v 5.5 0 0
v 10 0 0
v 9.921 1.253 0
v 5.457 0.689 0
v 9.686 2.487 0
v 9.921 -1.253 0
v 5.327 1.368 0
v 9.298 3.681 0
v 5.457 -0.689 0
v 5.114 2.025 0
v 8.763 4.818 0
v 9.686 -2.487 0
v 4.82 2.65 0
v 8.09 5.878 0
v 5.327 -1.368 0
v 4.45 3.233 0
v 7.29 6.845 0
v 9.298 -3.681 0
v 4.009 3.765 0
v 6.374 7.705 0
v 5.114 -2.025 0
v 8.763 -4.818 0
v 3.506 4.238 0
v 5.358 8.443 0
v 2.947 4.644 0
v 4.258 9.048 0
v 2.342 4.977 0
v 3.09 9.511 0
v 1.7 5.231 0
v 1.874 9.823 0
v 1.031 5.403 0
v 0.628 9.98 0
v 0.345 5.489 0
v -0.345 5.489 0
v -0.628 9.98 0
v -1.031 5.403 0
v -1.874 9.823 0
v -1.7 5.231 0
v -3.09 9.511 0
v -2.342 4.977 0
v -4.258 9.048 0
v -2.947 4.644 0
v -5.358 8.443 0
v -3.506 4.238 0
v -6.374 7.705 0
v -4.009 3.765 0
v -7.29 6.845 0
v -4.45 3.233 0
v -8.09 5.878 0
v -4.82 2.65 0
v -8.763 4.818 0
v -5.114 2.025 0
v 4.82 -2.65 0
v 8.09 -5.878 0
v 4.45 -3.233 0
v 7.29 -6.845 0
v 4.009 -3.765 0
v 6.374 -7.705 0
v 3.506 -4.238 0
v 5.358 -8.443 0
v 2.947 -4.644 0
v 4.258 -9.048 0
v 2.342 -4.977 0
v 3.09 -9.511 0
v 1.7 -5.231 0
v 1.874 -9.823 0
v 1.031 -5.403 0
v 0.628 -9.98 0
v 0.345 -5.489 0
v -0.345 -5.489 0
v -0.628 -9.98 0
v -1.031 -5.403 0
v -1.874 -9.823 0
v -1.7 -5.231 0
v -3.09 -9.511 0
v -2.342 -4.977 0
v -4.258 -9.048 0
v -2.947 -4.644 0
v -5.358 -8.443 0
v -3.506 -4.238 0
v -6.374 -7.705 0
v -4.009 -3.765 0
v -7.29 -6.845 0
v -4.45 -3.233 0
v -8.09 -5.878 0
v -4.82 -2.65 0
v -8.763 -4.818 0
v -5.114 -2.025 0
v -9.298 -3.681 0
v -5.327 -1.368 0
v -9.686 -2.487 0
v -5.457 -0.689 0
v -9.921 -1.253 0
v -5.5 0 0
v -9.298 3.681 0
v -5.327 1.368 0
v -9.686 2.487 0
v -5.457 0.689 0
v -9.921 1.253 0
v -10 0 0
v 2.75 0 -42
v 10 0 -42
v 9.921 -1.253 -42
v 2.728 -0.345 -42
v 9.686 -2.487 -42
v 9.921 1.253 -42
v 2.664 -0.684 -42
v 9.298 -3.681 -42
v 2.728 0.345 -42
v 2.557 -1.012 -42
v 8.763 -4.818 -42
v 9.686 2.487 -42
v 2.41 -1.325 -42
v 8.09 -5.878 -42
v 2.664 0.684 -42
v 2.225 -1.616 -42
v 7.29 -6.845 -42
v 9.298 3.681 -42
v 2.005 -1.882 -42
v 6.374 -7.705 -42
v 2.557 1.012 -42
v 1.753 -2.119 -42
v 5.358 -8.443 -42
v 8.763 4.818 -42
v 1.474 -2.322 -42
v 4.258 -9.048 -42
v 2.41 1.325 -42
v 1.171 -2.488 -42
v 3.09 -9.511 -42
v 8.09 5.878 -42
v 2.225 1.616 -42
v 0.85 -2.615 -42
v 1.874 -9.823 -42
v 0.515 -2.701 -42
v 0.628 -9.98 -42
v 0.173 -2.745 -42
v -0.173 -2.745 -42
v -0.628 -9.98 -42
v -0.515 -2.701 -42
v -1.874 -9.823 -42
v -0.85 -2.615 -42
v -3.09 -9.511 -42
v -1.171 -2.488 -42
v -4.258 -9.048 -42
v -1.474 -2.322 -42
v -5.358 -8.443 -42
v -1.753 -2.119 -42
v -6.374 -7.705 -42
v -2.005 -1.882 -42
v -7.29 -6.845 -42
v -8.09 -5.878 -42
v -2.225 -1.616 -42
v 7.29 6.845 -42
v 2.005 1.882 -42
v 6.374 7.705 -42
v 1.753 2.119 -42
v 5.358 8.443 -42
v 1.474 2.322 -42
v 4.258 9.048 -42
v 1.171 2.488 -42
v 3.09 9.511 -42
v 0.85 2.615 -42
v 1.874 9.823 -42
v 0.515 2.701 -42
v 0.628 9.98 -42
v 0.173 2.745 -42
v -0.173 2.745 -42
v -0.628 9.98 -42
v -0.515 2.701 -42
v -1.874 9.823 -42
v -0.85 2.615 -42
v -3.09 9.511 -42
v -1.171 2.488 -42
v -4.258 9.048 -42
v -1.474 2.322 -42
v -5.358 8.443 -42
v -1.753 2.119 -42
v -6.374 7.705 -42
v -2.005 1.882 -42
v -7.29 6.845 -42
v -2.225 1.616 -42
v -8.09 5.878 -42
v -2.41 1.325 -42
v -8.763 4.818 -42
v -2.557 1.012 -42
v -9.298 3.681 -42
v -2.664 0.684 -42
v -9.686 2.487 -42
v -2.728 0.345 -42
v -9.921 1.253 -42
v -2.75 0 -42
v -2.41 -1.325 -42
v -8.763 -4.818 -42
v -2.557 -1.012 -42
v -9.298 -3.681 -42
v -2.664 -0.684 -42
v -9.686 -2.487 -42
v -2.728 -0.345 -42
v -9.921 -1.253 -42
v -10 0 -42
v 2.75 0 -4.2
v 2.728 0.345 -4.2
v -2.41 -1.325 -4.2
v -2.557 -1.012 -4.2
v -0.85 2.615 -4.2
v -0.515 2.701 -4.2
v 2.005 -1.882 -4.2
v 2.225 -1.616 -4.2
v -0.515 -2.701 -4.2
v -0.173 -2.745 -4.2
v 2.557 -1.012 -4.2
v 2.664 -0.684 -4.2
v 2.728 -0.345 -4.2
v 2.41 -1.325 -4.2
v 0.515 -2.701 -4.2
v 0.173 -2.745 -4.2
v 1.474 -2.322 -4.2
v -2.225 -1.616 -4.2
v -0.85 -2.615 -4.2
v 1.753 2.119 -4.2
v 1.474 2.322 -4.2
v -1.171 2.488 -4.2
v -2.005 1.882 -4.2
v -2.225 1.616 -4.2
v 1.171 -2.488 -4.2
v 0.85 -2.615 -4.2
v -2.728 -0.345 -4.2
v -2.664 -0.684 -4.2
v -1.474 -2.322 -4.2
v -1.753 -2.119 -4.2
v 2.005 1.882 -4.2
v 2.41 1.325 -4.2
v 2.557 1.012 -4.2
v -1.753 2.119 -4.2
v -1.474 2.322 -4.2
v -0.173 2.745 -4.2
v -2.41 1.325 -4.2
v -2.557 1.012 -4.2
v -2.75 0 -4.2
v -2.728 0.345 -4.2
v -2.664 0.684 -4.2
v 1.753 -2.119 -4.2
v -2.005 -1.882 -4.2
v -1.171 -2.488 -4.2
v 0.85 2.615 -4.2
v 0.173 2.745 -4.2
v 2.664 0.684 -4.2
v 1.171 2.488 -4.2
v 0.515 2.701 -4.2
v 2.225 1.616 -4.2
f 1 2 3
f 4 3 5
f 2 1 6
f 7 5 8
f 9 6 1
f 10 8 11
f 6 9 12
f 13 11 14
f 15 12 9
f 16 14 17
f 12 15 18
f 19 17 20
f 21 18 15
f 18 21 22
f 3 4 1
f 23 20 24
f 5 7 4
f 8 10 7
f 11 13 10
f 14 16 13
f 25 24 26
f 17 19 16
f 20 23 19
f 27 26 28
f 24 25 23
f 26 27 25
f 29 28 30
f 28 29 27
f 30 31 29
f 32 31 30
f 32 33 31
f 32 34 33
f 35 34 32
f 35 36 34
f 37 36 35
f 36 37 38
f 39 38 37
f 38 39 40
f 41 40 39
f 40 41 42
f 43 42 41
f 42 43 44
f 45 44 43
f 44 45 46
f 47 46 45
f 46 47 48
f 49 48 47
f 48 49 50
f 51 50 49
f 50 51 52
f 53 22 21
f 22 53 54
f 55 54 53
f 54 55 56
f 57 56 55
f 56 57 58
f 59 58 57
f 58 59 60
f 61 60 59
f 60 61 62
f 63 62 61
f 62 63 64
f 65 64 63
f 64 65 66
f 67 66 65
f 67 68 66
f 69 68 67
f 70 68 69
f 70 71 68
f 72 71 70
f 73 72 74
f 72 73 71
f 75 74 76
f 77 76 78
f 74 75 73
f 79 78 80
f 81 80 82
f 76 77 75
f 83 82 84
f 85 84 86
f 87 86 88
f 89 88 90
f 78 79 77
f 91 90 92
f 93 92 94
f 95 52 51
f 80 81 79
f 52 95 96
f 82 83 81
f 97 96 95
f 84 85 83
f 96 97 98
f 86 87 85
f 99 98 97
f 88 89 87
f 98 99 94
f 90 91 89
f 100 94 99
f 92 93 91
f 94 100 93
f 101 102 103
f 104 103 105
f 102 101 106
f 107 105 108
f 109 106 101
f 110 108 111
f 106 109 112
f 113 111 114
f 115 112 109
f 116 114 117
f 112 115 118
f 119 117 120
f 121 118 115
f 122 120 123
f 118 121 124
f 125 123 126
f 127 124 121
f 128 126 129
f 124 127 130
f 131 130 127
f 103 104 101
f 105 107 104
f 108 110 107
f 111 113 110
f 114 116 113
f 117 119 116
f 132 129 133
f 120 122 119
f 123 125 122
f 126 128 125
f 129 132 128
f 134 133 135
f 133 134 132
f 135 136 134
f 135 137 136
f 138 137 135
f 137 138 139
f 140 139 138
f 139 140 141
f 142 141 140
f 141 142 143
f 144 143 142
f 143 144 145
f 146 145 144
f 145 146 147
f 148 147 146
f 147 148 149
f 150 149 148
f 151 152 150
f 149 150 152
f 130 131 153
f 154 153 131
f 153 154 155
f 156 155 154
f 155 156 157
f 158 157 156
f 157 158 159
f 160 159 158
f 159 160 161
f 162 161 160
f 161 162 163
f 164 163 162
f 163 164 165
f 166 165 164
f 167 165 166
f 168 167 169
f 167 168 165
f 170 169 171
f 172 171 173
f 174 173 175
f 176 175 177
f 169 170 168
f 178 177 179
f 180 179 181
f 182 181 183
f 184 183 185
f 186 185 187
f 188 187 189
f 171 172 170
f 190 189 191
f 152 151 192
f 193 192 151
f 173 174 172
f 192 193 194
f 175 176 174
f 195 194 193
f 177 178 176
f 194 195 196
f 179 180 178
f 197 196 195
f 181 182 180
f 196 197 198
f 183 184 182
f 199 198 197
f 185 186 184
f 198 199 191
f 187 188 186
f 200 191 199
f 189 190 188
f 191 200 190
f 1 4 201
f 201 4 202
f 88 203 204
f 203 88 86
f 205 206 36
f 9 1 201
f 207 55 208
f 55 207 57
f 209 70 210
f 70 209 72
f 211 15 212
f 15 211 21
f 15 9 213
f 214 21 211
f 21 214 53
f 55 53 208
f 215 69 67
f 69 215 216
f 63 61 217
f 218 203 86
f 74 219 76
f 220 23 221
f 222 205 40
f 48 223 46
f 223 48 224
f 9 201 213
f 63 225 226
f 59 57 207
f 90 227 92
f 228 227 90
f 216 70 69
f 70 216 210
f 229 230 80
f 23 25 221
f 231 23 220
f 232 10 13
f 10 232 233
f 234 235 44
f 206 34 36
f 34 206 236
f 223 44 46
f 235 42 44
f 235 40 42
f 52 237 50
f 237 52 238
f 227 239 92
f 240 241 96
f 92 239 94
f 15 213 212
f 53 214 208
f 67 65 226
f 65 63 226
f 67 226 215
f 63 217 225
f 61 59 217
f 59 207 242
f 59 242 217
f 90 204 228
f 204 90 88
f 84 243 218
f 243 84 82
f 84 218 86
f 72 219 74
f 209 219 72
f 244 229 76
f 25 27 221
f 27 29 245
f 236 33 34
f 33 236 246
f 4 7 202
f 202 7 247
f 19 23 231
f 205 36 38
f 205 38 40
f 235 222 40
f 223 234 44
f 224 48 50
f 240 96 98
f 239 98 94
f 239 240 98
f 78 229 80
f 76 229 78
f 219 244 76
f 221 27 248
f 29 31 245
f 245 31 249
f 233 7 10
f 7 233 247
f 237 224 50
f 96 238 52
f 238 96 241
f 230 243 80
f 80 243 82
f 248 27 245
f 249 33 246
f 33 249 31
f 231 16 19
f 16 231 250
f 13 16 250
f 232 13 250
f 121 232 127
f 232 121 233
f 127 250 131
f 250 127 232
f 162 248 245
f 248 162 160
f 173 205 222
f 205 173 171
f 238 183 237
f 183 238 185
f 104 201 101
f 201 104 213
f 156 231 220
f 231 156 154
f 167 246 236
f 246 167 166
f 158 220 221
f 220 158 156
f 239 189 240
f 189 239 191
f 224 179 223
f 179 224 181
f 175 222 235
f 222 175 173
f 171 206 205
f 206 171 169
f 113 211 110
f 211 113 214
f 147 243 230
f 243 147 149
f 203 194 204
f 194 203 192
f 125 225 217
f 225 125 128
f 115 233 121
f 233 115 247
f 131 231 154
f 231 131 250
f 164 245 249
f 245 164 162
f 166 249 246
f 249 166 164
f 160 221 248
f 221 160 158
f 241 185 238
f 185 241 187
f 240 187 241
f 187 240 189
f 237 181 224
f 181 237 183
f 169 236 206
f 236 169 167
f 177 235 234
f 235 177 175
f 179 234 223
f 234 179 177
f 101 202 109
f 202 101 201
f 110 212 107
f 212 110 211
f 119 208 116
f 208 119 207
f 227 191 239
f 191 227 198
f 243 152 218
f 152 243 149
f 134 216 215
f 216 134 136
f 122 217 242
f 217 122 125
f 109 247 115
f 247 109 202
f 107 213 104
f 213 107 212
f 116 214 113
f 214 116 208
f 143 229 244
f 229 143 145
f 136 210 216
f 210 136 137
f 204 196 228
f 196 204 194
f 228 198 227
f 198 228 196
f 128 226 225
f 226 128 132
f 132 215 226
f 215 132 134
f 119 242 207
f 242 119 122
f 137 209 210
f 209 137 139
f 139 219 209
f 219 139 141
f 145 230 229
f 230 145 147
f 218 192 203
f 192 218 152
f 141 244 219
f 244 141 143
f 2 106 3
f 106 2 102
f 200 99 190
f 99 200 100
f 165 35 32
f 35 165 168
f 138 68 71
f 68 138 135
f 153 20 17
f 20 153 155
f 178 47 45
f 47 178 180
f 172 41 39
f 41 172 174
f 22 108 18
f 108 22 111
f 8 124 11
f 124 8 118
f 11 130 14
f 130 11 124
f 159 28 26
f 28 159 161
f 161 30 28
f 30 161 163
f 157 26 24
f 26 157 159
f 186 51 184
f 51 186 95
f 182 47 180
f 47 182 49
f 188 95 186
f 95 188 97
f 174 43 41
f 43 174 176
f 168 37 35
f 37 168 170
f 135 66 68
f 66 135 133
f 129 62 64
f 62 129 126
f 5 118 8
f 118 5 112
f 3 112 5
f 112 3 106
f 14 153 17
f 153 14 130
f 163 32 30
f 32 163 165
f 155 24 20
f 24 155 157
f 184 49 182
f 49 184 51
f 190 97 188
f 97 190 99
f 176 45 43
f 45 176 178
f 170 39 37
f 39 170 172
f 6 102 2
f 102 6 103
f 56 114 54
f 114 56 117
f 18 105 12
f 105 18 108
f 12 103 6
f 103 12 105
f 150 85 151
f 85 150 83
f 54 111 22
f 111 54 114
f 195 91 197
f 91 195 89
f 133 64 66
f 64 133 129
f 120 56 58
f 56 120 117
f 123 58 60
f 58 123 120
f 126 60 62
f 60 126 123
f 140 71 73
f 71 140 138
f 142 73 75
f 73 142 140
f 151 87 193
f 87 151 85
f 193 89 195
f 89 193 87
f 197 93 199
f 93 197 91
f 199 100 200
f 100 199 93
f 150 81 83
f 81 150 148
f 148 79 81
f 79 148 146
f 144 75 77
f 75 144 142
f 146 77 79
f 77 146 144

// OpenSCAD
$fn = 50;


difference() {
	union() {
		translate(v = [0, 0, -42.0000000000]) {
			cylinder(h = 42, r = 10.0000000000);
		}
	}
	union() {
		translate(v = [0, 0, 0]) {
			rotate(a = [0, 0, 0]) {
				difference() {
					union() {
						#translate(v = [0, 0, -42.0000000000]) {
							cylinder(h = 42, r = 2.2500000000);
						}
						#translate(v = [0, 0, -4.2000000000]) {
							cylinder(h = 4.2000000000, r = 10.0000000000, r1 = 2.7500000000, r2 = 5.5000000000);
						}
						#translate(v = [0, 0, -42.0000000000]) {
							cylinder(h = 42, r = 2.7500000000);
						}
						#translate(v = [0, 0, -42.0000000000]) {
							cylinder(h = 42, r = 2.2500000000);
						}
					}
					union();
				}
			}
		}
	}
}
